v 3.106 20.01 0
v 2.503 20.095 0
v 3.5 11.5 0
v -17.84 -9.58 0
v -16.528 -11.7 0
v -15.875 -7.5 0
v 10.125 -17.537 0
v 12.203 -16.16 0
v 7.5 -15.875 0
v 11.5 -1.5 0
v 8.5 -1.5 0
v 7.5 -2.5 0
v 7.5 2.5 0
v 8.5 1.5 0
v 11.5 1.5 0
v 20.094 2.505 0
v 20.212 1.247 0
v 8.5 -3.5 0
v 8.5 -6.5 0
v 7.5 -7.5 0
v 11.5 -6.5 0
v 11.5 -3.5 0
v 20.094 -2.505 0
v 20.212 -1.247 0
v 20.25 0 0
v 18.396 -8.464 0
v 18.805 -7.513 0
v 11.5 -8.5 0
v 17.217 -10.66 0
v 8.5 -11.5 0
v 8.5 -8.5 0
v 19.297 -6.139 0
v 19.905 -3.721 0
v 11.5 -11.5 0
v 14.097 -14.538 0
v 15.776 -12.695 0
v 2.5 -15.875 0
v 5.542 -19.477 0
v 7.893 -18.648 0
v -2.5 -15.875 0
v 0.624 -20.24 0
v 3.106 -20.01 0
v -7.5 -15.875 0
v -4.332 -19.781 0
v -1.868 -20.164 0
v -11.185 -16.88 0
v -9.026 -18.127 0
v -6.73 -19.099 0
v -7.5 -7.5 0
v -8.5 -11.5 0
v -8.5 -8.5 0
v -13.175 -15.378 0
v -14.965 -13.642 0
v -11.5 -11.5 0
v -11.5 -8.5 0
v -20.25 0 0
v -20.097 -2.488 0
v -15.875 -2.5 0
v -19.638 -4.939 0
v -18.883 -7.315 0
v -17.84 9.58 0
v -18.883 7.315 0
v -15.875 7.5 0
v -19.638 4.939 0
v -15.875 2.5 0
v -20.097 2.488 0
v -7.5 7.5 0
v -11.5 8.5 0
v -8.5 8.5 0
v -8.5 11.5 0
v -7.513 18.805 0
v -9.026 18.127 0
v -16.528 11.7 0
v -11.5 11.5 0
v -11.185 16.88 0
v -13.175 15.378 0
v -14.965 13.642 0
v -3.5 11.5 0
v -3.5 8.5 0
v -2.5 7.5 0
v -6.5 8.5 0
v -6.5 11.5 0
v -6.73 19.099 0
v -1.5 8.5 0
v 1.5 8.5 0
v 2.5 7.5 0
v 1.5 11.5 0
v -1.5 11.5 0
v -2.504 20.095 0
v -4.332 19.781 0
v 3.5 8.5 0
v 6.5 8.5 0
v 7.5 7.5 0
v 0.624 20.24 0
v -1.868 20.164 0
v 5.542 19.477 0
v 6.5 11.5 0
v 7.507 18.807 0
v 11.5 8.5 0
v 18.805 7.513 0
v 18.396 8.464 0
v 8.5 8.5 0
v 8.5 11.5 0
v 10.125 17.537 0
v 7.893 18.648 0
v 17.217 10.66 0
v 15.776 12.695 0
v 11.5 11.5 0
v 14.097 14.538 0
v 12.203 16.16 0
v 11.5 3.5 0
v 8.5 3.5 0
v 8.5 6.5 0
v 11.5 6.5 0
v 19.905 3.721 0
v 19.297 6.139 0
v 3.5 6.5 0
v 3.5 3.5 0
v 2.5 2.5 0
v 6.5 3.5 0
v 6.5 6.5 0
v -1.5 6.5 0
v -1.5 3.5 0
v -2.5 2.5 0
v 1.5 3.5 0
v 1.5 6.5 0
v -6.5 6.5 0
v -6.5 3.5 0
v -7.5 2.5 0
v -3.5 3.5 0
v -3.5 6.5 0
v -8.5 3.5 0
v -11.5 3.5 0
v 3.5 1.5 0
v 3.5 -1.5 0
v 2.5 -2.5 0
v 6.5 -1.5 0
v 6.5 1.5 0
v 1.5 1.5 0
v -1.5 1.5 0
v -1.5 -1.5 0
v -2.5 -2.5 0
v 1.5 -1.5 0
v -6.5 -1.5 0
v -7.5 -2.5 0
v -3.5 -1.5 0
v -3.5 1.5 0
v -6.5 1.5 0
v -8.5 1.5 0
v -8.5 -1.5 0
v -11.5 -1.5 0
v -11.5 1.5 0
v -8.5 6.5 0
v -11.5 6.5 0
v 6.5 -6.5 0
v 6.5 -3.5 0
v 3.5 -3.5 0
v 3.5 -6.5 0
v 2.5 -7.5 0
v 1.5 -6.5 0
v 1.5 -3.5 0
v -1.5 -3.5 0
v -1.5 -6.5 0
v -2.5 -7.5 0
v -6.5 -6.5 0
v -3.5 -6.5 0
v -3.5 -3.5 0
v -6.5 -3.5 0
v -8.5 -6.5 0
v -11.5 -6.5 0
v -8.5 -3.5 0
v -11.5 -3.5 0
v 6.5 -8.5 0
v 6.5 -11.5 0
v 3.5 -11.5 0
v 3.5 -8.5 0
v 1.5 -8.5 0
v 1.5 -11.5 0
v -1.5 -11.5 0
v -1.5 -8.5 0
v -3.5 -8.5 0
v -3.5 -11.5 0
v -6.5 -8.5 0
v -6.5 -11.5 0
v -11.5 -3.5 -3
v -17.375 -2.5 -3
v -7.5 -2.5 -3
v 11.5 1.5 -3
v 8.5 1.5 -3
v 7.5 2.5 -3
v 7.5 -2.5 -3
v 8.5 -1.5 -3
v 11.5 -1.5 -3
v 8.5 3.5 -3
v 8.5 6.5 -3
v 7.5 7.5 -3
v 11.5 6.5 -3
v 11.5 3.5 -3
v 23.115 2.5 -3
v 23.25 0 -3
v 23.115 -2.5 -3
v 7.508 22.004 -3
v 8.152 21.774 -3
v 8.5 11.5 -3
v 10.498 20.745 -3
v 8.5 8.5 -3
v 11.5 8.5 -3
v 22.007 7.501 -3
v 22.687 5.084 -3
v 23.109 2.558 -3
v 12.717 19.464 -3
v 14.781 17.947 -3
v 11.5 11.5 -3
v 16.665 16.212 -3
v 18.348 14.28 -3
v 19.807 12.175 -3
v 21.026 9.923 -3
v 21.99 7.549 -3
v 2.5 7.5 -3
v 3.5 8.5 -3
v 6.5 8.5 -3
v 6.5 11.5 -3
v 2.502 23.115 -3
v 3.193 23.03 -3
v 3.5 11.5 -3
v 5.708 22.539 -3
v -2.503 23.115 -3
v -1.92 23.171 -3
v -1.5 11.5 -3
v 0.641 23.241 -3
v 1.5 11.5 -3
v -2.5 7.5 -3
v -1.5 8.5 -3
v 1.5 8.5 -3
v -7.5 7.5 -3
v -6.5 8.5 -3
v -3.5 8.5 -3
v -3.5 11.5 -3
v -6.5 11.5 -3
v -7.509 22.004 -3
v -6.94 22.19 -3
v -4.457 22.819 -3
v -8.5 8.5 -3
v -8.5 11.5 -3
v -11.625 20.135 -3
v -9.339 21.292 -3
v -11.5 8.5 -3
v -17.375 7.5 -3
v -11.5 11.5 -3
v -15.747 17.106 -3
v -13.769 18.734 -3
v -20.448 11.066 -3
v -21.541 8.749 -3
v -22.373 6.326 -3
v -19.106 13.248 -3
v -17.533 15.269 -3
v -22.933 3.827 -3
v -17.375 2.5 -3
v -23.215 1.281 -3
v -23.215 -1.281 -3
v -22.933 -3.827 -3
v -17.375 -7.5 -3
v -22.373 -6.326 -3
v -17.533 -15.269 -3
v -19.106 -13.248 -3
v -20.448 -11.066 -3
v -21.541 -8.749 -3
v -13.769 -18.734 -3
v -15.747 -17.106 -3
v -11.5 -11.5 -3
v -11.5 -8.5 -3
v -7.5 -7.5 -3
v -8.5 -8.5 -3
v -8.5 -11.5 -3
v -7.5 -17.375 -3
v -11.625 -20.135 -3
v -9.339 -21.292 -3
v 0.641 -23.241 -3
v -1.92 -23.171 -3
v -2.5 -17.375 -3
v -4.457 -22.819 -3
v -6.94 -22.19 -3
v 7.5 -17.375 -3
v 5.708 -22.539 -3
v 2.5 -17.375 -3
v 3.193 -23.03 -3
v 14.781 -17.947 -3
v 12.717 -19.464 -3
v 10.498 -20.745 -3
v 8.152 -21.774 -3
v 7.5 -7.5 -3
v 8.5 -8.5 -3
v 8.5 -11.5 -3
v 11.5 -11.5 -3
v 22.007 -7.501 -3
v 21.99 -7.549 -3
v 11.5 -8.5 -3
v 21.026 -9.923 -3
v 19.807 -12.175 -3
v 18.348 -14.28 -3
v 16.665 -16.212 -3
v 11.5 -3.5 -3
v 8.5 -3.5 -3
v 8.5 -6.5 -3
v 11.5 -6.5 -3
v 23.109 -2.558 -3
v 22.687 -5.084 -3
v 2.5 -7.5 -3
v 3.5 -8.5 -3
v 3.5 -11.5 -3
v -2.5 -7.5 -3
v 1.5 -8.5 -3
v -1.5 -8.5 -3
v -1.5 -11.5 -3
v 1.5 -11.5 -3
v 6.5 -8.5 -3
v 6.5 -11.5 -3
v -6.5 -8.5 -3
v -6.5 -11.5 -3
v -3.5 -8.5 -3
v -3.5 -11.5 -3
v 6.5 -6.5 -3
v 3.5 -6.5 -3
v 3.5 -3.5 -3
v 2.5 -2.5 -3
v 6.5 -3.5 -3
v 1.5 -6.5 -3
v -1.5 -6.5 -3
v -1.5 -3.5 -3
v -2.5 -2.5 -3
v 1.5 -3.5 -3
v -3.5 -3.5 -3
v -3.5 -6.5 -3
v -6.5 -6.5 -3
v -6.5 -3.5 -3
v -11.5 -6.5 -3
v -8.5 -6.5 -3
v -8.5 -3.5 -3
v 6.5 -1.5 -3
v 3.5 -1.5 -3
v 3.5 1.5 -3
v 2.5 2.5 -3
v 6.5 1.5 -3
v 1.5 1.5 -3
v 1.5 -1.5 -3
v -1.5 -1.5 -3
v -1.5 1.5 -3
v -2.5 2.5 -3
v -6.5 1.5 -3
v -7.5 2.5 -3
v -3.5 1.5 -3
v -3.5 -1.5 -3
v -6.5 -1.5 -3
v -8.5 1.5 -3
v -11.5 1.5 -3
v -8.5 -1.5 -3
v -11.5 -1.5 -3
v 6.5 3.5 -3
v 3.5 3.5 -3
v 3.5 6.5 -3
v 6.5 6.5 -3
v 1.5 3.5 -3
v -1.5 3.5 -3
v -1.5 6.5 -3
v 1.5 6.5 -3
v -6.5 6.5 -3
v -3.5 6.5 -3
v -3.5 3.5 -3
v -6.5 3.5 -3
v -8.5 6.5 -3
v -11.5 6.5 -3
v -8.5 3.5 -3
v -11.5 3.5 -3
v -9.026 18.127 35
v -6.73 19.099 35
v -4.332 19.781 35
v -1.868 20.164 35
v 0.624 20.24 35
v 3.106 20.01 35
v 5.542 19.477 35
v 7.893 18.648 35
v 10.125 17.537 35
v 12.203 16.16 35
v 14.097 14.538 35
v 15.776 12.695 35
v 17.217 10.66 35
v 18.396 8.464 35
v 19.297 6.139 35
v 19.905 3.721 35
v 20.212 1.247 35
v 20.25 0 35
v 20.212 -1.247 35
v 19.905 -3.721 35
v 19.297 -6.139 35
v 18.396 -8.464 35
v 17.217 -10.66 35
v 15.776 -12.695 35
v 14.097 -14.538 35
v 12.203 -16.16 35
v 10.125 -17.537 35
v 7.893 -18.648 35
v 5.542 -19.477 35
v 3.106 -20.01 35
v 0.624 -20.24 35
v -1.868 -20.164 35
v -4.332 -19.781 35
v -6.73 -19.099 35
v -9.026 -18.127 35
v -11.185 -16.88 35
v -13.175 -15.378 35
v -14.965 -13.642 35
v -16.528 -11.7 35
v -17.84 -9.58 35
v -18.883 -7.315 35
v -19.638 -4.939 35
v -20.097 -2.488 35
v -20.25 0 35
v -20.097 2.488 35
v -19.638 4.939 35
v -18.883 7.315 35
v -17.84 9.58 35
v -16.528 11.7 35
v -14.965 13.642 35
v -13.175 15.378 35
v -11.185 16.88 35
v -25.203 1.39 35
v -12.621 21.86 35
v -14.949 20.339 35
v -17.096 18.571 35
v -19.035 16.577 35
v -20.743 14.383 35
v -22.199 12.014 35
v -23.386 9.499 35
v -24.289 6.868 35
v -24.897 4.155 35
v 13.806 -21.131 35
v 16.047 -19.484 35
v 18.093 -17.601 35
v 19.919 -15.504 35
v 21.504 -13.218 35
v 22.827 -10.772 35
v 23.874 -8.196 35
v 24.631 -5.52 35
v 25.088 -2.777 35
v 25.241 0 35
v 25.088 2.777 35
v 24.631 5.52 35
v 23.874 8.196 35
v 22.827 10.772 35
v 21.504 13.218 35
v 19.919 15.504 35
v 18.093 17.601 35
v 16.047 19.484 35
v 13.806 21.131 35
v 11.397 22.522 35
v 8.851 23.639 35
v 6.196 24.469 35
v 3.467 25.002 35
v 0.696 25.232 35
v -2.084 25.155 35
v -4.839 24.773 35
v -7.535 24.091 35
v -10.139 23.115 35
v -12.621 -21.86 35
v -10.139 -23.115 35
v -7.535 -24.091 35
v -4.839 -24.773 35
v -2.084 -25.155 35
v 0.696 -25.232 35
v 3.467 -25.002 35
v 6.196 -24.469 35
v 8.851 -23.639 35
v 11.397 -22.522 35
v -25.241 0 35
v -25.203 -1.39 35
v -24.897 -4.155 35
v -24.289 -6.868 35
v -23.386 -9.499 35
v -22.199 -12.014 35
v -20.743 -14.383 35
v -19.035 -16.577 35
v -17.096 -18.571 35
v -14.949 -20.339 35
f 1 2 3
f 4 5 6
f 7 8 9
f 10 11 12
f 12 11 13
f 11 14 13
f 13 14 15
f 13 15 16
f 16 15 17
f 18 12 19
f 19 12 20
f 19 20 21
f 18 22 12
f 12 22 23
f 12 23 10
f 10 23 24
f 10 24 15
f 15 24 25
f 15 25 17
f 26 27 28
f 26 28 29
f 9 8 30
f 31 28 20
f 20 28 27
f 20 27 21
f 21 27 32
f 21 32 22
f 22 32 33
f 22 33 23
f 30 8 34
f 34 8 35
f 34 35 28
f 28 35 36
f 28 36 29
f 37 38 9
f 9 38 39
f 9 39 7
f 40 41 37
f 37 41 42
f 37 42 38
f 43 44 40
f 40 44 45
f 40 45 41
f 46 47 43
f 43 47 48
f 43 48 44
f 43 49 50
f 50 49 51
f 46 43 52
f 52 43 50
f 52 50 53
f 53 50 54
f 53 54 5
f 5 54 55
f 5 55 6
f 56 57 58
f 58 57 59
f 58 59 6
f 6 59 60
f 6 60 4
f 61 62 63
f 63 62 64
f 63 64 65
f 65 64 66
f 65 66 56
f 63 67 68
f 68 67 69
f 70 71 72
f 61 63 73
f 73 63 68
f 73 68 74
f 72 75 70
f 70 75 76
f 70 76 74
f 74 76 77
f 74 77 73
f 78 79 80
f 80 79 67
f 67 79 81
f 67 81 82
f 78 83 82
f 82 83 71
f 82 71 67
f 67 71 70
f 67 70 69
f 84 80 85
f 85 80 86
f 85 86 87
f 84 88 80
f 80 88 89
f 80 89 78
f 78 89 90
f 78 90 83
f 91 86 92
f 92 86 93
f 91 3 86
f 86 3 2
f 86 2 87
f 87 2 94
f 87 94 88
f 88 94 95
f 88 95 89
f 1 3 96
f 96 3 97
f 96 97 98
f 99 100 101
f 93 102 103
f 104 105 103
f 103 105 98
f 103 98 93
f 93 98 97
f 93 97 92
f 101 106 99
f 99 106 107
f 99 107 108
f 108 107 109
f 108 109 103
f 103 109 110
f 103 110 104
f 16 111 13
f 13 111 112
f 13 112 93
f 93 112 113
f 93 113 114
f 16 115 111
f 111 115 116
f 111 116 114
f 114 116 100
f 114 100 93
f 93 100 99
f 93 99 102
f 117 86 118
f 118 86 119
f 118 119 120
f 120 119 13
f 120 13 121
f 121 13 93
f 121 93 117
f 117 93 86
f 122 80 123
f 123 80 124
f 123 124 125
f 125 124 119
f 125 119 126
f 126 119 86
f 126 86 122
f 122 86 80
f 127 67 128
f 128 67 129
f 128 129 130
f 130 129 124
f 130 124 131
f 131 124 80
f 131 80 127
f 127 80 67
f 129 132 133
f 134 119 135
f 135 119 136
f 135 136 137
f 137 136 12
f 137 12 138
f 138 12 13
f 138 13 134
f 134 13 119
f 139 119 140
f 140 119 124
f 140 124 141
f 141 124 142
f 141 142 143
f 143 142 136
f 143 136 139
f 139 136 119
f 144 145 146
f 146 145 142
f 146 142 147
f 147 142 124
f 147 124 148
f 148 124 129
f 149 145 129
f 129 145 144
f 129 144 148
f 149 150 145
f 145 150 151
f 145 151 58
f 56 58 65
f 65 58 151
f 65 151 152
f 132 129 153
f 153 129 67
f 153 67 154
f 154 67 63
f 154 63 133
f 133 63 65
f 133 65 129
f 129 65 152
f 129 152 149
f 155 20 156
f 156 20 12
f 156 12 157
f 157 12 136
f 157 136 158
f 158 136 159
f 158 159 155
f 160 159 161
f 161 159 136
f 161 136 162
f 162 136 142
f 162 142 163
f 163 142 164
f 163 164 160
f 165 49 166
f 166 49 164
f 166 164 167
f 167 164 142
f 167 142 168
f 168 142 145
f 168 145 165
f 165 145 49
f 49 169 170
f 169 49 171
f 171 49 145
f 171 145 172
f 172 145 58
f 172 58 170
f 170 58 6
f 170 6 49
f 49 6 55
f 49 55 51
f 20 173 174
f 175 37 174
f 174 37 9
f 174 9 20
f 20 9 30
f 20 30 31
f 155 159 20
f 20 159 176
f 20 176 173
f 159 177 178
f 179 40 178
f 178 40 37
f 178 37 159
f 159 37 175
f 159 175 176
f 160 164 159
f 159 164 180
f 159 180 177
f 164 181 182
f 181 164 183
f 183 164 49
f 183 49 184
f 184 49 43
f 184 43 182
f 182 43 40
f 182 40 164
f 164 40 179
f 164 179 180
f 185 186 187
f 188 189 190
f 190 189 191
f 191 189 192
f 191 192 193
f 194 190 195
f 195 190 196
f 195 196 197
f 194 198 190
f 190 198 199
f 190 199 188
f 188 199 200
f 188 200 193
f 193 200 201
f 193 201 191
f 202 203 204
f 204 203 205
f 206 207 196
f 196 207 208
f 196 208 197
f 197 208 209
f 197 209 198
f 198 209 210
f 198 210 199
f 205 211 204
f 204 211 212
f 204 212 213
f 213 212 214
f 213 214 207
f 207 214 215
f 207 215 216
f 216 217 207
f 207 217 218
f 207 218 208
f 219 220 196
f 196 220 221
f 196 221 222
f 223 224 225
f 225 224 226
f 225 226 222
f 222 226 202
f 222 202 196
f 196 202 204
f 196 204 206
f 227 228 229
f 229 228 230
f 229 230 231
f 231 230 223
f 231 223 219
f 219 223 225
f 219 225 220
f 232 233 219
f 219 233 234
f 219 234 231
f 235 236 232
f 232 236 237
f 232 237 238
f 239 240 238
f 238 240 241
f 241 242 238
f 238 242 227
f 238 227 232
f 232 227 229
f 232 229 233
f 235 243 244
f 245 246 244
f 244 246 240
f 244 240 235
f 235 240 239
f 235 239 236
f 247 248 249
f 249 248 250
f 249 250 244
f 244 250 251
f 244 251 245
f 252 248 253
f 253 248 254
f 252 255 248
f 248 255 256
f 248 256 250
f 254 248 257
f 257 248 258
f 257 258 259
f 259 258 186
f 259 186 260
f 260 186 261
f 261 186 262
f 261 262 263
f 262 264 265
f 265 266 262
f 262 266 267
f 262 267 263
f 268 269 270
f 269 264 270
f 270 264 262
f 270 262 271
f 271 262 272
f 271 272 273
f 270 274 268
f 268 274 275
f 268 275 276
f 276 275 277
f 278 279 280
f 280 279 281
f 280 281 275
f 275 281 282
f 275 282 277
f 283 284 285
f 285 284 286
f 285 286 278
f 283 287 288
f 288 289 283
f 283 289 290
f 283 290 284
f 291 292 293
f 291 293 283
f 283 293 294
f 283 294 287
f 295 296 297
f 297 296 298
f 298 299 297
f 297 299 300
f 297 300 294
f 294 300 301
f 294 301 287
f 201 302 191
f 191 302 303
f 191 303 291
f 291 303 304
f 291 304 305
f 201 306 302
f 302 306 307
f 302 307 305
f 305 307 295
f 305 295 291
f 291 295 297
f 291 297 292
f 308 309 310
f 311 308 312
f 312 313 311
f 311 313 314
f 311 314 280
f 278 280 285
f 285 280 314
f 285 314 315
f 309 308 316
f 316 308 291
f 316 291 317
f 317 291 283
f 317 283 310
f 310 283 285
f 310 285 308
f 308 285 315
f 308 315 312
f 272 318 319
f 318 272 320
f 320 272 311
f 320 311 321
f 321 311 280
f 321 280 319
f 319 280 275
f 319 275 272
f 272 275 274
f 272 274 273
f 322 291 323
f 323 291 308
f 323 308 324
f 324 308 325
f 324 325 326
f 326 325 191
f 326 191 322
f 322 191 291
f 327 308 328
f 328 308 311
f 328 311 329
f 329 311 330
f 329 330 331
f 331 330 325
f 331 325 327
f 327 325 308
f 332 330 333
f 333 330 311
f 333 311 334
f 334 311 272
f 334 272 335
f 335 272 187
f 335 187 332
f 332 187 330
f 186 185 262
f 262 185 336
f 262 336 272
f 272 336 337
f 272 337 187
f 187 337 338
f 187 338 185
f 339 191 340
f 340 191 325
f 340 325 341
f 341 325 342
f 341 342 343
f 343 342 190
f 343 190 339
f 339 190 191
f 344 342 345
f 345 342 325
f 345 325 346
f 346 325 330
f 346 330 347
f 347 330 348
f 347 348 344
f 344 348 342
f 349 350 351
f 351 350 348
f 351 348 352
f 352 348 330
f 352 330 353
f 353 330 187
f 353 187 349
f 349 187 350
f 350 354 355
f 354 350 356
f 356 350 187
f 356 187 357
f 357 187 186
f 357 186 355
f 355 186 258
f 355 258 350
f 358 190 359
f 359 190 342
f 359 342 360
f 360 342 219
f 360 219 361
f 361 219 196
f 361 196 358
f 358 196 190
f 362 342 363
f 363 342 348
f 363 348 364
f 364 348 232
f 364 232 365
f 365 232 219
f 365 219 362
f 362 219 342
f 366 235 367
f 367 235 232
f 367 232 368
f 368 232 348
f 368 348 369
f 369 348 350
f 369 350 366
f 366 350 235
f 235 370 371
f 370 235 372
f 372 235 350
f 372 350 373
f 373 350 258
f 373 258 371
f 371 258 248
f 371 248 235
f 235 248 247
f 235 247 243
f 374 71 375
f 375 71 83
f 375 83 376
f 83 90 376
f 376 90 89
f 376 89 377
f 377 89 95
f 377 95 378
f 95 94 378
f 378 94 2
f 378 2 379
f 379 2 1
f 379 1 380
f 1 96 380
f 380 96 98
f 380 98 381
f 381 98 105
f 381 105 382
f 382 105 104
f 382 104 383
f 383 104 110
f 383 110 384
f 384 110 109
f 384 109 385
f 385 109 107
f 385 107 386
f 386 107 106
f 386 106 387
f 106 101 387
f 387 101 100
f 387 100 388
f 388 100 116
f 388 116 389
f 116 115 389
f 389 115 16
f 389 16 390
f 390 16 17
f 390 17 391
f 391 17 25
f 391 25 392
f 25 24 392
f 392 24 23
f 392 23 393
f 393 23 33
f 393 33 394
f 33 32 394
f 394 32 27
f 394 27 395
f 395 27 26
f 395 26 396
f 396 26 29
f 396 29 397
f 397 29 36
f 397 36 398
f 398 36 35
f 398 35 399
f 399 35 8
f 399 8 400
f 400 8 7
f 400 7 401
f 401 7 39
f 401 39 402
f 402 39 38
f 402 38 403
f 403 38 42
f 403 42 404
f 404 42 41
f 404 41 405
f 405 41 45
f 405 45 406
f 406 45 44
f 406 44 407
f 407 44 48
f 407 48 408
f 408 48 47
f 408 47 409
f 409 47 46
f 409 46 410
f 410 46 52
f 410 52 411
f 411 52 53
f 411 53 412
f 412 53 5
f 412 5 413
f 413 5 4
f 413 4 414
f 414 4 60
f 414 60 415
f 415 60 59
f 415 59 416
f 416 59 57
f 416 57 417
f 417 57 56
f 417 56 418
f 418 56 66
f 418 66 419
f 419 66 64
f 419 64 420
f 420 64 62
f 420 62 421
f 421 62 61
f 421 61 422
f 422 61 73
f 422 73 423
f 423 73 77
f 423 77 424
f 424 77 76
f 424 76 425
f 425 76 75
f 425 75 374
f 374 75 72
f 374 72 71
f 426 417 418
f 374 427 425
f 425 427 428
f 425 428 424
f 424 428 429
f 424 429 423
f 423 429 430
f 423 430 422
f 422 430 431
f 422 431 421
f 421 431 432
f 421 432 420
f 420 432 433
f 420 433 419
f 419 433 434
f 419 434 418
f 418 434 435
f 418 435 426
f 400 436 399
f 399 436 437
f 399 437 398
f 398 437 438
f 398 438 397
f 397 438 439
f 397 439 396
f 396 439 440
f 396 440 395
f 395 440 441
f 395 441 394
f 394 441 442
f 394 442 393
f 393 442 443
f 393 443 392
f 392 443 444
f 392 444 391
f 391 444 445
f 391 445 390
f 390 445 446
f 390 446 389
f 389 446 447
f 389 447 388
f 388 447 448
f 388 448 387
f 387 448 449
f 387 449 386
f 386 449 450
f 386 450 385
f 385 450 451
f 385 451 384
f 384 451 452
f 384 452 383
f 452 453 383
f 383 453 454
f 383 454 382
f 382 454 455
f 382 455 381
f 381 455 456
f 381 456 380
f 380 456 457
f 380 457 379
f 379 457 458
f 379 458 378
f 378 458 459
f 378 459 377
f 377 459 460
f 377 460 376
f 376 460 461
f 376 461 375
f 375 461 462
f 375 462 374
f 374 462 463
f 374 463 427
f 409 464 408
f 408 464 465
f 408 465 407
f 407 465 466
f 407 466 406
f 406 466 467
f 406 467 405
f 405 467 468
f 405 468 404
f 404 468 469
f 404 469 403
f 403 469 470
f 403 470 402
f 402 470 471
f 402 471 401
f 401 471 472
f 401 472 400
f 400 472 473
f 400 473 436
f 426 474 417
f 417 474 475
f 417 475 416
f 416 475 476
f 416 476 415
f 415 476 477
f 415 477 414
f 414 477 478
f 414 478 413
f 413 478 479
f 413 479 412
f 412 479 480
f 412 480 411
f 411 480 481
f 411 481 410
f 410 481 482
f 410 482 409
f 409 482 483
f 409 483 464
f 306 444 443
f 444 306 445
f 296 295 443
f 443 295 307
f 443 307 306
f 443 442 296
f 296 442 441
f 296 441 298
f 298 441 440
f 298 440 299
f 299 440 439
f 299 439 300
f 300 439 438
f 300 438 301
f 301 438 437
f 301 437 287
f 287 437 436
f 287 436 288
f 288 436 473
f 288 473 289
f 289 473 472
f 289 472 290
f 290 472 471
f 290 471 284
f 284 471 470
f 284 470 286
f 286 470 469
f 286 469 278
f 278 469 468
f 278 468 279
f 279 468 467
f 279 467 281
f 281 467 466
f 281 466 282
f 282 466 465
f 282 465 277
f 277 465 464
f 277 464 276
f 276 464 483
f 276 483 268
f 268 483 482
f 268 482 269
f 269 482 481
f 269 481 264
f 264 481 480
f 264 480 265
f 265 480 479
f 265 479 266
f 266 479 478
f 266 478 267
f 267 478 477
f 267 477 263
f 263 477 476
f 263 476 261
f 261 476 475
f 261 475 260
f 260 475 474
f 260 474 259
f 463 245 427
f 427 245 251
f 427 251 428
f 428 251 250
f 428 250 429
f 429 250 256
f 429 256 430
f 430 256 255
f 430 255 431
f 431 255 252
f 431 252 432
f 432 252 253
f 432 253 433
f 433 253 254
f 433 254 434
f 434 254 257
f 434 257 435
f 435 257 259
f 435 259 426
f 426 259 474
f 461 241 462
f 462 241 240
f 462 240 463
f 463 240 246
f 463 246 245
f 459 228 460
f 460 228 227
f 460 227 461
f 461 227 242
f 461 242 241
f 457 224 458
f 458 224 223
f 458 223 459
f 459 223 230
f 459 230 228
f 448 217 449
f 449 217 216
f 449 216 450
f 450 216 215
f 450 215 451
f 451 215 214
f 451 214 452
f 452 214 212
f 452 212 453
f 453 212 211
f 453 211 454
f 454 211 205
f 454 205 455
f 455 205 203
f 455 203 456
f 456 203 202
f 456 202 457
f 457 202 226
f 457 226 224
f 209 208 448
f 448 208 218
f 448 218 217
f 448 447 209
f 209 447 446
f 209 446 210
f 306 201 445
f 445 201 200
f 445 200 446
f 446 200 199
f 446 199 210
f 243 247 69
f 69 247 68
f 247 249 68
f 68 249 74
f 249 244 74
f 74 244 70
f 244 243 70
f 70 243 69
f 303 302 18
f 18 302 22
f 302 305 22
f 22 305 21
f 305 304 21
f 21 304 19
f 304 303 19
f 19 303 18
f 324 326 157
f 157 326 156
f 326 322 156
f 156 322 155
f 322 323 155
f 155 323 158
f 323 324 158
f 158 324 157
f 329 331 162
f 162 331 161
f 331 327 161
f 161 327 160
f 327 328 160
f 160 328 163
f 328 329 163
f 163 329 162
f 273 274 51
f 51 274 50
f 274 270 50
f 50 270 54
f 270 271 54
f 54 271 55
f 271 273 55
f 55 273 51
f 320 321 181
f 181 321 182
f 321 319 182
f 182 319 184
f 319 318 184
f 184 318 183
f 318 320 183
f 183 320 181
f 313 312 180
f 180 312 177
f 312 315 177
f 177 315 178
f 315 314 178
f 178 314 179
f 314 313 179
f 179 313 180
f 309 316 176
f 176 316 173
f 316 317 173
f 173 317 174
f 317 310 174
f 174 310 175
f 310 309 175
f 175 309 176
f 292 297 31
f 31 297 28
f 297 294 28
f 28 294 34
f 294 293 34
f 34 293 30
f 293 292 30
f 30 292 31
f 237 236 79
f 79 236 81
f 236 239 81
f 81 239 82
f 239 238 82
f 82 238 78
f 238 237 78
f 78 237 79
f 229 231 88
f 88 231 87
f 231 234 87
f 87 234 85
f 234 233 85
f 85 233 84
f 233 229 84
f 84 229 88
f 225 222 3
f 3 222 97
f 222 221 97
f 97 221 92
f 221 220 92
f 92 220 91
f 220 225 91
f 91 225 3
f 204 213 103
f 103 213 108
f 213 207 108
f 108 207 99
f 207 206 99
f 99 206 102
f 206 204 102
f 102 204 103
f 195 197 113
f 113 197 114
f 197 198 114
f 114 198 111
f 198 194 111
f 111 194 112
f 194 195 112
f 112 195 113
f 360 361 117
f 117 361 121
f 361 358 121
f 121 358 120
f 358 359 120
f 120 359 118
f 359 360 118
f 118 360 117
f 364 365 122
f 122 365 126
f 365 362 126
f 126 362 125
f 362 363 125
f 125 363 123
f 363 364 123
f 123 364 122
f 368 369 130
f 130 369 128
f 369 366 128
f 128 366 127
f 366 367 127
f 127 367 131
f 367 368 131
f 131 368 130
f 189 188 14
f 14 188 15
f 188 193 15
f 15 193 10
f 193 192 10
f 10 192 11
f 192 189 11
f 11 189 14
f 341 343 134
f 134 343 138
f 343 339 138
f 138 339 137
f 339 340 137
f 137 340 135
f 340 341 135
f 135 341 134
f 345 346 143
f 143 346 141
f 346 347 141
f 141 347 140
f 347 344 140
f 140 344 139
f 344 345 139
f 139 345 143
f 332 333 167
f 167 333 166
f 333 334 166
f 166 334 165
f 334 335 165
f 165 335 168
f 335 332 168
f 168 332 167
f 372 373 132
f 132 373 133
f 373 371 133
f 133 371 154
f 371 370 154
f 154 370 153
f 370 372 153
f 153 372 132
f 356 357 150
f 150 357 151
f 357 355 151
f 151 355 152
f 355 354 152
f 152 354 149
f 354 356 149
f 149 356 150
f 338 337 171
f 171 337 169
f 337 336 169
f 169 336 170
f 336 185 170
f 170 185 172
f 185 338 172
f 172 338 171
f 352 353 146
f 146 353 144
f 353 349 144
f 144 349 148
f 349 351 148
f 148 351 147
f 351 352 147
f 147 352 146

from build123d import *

# Parameters (mm, degrees)
SKETCH1_R           = 23.25
BOSS_EXTRUDE1_DEPTH = 3
BOSS_EXTRUDE2_START = 35
SKETCH1_3_R         = 23.25
SKETCH1_3_R_2       = 20.25
BOSS_EXTRUDE2_DEPTH = 35
SKETCH6_W           = 3
SKETCH6_H           = 3
CUT_EXTRUDE1_DEPTH  = 50.992661477


with BuildPart() as part:
    # Sketch1 → Boss-Extrude1 (new body)
    with BuildSketch(Plane.XY):
        Circle(SKETCH1_R)
    extrude(amount=-BOSS_EXTRUDE1_DEPTH)

    # Sketch1<3> → Boss-Extrude2 (add)
    with BuildSketch(Plane.XY.offset(BOSS_EXTRUDE2_START)):
        Circle(SKETCH1_3_R)
        Circle(SKETCH1_3_R_2, mode=Mode.SUBTRACT)
    extrude(amount=-BOSS_EXTRUDE2_DEPTH)

    # Sketch4 → Revolve2 (revolve)
    with BuildSketch(Plane(origin=(0, 0, 0), x_dir=(1, 0, 0), z_dir=(0, 1, 0))):
        Polygon((23.25, -35), (23.25, 3), (25.241495613, -35), align=None)
    revolve(axis=Axis((0, 0, 0), (0, 0, 1)))

    # Sketch6 → Cut-Extrude1 (cut, through all)
    with BuildSketch(Plane.XY):
        with Locations((5, 0)):
            Rectangle(SKETCH6_W, SKETCH6_H)
        Rectangle(SKETCH6_W, SKETCH6_H)
        with Locations((10, 0)):
            Rectangle(SKETCH6_W, SKETCH6_H)
        with Locations((5, 5)):
            Rectangle(SKETCH6_W, SKETCH6_H)
        with Locations((10, 5)):
            Rectangle(SKETCH6_W, SKETCH6_H)
        with Locations((5, 10)):
            Rectangle(SKETCH6_W, SKETCH6_H)
        with Locations((10, 10)):
            Rectangle(SKETCH6_W, SKETCH6_H)
        with Locations((0, 5)):
            Rectangle(SKETCH6_W, SKETCH6_H)
        with Locations((0, 10)):
            Rectangle(SKETCH6_W, SKETCH6_H)
        with Locations((0, -10)):
            Rectangle(SKETCH6_W, SKETCH6_H)
        with Locations((5, -10)):
            Rectangle(SKETCH6_W, SKETCH6_H)
        with Locations((10, -10)):
            Rectangle(SKETCH6_W, SKETCH6_H)
        with Locations((10, -5)):
            Rectangle(SKETCH6_W, SKETCH6_H)
        with Locations((5, -5)):
            Rectangle(SKETCH6_W, SKETCH6_H)
        with Locations((0, -5)):
            Rectangle(SKETCH6_W, SKETCH6_H)
        with Locations((-10, -10)):
            Rectangle(SKETCH6_W, SKETCH6_H)
        with Locations((-5, -10)):
            Rectangle(SKETCH6_W, SKETCH6_H)
        with Locations((-5, -5)):
            Rectangle(SKETCH6_W, SKETCH6_H)
        with Locations((-10, -5)):
            Rectangle(SKETCH6_W, SKETCH6_H)
        with Locations((-10, 0)):
            Rectangle(SKETCH6_W, SKETCH6_H)
        with Locations((-5, 0)):
            Rectangle(SKETCH6_W, SKETCH6_H)
        with Locations((-5, 5)):
            Rectangle(SKETCH6_W, SKETCH6_H)
        with Locations((-10, 5)):
            Rectangle(SKETCH6_W, SKETCH6_H)
        with Locations((-10, 10)):
            Rectangle(SKETCH6_W, SKETCH6_H)
        with Locations((-5, 10)):
            Rectangle(SKETCH6_W, SKETCH6_H)
    extrude(amount=-CUT_EXTRUDE1_DEPTH, mode=Mode.SUBTRACT)


solid = part.part
